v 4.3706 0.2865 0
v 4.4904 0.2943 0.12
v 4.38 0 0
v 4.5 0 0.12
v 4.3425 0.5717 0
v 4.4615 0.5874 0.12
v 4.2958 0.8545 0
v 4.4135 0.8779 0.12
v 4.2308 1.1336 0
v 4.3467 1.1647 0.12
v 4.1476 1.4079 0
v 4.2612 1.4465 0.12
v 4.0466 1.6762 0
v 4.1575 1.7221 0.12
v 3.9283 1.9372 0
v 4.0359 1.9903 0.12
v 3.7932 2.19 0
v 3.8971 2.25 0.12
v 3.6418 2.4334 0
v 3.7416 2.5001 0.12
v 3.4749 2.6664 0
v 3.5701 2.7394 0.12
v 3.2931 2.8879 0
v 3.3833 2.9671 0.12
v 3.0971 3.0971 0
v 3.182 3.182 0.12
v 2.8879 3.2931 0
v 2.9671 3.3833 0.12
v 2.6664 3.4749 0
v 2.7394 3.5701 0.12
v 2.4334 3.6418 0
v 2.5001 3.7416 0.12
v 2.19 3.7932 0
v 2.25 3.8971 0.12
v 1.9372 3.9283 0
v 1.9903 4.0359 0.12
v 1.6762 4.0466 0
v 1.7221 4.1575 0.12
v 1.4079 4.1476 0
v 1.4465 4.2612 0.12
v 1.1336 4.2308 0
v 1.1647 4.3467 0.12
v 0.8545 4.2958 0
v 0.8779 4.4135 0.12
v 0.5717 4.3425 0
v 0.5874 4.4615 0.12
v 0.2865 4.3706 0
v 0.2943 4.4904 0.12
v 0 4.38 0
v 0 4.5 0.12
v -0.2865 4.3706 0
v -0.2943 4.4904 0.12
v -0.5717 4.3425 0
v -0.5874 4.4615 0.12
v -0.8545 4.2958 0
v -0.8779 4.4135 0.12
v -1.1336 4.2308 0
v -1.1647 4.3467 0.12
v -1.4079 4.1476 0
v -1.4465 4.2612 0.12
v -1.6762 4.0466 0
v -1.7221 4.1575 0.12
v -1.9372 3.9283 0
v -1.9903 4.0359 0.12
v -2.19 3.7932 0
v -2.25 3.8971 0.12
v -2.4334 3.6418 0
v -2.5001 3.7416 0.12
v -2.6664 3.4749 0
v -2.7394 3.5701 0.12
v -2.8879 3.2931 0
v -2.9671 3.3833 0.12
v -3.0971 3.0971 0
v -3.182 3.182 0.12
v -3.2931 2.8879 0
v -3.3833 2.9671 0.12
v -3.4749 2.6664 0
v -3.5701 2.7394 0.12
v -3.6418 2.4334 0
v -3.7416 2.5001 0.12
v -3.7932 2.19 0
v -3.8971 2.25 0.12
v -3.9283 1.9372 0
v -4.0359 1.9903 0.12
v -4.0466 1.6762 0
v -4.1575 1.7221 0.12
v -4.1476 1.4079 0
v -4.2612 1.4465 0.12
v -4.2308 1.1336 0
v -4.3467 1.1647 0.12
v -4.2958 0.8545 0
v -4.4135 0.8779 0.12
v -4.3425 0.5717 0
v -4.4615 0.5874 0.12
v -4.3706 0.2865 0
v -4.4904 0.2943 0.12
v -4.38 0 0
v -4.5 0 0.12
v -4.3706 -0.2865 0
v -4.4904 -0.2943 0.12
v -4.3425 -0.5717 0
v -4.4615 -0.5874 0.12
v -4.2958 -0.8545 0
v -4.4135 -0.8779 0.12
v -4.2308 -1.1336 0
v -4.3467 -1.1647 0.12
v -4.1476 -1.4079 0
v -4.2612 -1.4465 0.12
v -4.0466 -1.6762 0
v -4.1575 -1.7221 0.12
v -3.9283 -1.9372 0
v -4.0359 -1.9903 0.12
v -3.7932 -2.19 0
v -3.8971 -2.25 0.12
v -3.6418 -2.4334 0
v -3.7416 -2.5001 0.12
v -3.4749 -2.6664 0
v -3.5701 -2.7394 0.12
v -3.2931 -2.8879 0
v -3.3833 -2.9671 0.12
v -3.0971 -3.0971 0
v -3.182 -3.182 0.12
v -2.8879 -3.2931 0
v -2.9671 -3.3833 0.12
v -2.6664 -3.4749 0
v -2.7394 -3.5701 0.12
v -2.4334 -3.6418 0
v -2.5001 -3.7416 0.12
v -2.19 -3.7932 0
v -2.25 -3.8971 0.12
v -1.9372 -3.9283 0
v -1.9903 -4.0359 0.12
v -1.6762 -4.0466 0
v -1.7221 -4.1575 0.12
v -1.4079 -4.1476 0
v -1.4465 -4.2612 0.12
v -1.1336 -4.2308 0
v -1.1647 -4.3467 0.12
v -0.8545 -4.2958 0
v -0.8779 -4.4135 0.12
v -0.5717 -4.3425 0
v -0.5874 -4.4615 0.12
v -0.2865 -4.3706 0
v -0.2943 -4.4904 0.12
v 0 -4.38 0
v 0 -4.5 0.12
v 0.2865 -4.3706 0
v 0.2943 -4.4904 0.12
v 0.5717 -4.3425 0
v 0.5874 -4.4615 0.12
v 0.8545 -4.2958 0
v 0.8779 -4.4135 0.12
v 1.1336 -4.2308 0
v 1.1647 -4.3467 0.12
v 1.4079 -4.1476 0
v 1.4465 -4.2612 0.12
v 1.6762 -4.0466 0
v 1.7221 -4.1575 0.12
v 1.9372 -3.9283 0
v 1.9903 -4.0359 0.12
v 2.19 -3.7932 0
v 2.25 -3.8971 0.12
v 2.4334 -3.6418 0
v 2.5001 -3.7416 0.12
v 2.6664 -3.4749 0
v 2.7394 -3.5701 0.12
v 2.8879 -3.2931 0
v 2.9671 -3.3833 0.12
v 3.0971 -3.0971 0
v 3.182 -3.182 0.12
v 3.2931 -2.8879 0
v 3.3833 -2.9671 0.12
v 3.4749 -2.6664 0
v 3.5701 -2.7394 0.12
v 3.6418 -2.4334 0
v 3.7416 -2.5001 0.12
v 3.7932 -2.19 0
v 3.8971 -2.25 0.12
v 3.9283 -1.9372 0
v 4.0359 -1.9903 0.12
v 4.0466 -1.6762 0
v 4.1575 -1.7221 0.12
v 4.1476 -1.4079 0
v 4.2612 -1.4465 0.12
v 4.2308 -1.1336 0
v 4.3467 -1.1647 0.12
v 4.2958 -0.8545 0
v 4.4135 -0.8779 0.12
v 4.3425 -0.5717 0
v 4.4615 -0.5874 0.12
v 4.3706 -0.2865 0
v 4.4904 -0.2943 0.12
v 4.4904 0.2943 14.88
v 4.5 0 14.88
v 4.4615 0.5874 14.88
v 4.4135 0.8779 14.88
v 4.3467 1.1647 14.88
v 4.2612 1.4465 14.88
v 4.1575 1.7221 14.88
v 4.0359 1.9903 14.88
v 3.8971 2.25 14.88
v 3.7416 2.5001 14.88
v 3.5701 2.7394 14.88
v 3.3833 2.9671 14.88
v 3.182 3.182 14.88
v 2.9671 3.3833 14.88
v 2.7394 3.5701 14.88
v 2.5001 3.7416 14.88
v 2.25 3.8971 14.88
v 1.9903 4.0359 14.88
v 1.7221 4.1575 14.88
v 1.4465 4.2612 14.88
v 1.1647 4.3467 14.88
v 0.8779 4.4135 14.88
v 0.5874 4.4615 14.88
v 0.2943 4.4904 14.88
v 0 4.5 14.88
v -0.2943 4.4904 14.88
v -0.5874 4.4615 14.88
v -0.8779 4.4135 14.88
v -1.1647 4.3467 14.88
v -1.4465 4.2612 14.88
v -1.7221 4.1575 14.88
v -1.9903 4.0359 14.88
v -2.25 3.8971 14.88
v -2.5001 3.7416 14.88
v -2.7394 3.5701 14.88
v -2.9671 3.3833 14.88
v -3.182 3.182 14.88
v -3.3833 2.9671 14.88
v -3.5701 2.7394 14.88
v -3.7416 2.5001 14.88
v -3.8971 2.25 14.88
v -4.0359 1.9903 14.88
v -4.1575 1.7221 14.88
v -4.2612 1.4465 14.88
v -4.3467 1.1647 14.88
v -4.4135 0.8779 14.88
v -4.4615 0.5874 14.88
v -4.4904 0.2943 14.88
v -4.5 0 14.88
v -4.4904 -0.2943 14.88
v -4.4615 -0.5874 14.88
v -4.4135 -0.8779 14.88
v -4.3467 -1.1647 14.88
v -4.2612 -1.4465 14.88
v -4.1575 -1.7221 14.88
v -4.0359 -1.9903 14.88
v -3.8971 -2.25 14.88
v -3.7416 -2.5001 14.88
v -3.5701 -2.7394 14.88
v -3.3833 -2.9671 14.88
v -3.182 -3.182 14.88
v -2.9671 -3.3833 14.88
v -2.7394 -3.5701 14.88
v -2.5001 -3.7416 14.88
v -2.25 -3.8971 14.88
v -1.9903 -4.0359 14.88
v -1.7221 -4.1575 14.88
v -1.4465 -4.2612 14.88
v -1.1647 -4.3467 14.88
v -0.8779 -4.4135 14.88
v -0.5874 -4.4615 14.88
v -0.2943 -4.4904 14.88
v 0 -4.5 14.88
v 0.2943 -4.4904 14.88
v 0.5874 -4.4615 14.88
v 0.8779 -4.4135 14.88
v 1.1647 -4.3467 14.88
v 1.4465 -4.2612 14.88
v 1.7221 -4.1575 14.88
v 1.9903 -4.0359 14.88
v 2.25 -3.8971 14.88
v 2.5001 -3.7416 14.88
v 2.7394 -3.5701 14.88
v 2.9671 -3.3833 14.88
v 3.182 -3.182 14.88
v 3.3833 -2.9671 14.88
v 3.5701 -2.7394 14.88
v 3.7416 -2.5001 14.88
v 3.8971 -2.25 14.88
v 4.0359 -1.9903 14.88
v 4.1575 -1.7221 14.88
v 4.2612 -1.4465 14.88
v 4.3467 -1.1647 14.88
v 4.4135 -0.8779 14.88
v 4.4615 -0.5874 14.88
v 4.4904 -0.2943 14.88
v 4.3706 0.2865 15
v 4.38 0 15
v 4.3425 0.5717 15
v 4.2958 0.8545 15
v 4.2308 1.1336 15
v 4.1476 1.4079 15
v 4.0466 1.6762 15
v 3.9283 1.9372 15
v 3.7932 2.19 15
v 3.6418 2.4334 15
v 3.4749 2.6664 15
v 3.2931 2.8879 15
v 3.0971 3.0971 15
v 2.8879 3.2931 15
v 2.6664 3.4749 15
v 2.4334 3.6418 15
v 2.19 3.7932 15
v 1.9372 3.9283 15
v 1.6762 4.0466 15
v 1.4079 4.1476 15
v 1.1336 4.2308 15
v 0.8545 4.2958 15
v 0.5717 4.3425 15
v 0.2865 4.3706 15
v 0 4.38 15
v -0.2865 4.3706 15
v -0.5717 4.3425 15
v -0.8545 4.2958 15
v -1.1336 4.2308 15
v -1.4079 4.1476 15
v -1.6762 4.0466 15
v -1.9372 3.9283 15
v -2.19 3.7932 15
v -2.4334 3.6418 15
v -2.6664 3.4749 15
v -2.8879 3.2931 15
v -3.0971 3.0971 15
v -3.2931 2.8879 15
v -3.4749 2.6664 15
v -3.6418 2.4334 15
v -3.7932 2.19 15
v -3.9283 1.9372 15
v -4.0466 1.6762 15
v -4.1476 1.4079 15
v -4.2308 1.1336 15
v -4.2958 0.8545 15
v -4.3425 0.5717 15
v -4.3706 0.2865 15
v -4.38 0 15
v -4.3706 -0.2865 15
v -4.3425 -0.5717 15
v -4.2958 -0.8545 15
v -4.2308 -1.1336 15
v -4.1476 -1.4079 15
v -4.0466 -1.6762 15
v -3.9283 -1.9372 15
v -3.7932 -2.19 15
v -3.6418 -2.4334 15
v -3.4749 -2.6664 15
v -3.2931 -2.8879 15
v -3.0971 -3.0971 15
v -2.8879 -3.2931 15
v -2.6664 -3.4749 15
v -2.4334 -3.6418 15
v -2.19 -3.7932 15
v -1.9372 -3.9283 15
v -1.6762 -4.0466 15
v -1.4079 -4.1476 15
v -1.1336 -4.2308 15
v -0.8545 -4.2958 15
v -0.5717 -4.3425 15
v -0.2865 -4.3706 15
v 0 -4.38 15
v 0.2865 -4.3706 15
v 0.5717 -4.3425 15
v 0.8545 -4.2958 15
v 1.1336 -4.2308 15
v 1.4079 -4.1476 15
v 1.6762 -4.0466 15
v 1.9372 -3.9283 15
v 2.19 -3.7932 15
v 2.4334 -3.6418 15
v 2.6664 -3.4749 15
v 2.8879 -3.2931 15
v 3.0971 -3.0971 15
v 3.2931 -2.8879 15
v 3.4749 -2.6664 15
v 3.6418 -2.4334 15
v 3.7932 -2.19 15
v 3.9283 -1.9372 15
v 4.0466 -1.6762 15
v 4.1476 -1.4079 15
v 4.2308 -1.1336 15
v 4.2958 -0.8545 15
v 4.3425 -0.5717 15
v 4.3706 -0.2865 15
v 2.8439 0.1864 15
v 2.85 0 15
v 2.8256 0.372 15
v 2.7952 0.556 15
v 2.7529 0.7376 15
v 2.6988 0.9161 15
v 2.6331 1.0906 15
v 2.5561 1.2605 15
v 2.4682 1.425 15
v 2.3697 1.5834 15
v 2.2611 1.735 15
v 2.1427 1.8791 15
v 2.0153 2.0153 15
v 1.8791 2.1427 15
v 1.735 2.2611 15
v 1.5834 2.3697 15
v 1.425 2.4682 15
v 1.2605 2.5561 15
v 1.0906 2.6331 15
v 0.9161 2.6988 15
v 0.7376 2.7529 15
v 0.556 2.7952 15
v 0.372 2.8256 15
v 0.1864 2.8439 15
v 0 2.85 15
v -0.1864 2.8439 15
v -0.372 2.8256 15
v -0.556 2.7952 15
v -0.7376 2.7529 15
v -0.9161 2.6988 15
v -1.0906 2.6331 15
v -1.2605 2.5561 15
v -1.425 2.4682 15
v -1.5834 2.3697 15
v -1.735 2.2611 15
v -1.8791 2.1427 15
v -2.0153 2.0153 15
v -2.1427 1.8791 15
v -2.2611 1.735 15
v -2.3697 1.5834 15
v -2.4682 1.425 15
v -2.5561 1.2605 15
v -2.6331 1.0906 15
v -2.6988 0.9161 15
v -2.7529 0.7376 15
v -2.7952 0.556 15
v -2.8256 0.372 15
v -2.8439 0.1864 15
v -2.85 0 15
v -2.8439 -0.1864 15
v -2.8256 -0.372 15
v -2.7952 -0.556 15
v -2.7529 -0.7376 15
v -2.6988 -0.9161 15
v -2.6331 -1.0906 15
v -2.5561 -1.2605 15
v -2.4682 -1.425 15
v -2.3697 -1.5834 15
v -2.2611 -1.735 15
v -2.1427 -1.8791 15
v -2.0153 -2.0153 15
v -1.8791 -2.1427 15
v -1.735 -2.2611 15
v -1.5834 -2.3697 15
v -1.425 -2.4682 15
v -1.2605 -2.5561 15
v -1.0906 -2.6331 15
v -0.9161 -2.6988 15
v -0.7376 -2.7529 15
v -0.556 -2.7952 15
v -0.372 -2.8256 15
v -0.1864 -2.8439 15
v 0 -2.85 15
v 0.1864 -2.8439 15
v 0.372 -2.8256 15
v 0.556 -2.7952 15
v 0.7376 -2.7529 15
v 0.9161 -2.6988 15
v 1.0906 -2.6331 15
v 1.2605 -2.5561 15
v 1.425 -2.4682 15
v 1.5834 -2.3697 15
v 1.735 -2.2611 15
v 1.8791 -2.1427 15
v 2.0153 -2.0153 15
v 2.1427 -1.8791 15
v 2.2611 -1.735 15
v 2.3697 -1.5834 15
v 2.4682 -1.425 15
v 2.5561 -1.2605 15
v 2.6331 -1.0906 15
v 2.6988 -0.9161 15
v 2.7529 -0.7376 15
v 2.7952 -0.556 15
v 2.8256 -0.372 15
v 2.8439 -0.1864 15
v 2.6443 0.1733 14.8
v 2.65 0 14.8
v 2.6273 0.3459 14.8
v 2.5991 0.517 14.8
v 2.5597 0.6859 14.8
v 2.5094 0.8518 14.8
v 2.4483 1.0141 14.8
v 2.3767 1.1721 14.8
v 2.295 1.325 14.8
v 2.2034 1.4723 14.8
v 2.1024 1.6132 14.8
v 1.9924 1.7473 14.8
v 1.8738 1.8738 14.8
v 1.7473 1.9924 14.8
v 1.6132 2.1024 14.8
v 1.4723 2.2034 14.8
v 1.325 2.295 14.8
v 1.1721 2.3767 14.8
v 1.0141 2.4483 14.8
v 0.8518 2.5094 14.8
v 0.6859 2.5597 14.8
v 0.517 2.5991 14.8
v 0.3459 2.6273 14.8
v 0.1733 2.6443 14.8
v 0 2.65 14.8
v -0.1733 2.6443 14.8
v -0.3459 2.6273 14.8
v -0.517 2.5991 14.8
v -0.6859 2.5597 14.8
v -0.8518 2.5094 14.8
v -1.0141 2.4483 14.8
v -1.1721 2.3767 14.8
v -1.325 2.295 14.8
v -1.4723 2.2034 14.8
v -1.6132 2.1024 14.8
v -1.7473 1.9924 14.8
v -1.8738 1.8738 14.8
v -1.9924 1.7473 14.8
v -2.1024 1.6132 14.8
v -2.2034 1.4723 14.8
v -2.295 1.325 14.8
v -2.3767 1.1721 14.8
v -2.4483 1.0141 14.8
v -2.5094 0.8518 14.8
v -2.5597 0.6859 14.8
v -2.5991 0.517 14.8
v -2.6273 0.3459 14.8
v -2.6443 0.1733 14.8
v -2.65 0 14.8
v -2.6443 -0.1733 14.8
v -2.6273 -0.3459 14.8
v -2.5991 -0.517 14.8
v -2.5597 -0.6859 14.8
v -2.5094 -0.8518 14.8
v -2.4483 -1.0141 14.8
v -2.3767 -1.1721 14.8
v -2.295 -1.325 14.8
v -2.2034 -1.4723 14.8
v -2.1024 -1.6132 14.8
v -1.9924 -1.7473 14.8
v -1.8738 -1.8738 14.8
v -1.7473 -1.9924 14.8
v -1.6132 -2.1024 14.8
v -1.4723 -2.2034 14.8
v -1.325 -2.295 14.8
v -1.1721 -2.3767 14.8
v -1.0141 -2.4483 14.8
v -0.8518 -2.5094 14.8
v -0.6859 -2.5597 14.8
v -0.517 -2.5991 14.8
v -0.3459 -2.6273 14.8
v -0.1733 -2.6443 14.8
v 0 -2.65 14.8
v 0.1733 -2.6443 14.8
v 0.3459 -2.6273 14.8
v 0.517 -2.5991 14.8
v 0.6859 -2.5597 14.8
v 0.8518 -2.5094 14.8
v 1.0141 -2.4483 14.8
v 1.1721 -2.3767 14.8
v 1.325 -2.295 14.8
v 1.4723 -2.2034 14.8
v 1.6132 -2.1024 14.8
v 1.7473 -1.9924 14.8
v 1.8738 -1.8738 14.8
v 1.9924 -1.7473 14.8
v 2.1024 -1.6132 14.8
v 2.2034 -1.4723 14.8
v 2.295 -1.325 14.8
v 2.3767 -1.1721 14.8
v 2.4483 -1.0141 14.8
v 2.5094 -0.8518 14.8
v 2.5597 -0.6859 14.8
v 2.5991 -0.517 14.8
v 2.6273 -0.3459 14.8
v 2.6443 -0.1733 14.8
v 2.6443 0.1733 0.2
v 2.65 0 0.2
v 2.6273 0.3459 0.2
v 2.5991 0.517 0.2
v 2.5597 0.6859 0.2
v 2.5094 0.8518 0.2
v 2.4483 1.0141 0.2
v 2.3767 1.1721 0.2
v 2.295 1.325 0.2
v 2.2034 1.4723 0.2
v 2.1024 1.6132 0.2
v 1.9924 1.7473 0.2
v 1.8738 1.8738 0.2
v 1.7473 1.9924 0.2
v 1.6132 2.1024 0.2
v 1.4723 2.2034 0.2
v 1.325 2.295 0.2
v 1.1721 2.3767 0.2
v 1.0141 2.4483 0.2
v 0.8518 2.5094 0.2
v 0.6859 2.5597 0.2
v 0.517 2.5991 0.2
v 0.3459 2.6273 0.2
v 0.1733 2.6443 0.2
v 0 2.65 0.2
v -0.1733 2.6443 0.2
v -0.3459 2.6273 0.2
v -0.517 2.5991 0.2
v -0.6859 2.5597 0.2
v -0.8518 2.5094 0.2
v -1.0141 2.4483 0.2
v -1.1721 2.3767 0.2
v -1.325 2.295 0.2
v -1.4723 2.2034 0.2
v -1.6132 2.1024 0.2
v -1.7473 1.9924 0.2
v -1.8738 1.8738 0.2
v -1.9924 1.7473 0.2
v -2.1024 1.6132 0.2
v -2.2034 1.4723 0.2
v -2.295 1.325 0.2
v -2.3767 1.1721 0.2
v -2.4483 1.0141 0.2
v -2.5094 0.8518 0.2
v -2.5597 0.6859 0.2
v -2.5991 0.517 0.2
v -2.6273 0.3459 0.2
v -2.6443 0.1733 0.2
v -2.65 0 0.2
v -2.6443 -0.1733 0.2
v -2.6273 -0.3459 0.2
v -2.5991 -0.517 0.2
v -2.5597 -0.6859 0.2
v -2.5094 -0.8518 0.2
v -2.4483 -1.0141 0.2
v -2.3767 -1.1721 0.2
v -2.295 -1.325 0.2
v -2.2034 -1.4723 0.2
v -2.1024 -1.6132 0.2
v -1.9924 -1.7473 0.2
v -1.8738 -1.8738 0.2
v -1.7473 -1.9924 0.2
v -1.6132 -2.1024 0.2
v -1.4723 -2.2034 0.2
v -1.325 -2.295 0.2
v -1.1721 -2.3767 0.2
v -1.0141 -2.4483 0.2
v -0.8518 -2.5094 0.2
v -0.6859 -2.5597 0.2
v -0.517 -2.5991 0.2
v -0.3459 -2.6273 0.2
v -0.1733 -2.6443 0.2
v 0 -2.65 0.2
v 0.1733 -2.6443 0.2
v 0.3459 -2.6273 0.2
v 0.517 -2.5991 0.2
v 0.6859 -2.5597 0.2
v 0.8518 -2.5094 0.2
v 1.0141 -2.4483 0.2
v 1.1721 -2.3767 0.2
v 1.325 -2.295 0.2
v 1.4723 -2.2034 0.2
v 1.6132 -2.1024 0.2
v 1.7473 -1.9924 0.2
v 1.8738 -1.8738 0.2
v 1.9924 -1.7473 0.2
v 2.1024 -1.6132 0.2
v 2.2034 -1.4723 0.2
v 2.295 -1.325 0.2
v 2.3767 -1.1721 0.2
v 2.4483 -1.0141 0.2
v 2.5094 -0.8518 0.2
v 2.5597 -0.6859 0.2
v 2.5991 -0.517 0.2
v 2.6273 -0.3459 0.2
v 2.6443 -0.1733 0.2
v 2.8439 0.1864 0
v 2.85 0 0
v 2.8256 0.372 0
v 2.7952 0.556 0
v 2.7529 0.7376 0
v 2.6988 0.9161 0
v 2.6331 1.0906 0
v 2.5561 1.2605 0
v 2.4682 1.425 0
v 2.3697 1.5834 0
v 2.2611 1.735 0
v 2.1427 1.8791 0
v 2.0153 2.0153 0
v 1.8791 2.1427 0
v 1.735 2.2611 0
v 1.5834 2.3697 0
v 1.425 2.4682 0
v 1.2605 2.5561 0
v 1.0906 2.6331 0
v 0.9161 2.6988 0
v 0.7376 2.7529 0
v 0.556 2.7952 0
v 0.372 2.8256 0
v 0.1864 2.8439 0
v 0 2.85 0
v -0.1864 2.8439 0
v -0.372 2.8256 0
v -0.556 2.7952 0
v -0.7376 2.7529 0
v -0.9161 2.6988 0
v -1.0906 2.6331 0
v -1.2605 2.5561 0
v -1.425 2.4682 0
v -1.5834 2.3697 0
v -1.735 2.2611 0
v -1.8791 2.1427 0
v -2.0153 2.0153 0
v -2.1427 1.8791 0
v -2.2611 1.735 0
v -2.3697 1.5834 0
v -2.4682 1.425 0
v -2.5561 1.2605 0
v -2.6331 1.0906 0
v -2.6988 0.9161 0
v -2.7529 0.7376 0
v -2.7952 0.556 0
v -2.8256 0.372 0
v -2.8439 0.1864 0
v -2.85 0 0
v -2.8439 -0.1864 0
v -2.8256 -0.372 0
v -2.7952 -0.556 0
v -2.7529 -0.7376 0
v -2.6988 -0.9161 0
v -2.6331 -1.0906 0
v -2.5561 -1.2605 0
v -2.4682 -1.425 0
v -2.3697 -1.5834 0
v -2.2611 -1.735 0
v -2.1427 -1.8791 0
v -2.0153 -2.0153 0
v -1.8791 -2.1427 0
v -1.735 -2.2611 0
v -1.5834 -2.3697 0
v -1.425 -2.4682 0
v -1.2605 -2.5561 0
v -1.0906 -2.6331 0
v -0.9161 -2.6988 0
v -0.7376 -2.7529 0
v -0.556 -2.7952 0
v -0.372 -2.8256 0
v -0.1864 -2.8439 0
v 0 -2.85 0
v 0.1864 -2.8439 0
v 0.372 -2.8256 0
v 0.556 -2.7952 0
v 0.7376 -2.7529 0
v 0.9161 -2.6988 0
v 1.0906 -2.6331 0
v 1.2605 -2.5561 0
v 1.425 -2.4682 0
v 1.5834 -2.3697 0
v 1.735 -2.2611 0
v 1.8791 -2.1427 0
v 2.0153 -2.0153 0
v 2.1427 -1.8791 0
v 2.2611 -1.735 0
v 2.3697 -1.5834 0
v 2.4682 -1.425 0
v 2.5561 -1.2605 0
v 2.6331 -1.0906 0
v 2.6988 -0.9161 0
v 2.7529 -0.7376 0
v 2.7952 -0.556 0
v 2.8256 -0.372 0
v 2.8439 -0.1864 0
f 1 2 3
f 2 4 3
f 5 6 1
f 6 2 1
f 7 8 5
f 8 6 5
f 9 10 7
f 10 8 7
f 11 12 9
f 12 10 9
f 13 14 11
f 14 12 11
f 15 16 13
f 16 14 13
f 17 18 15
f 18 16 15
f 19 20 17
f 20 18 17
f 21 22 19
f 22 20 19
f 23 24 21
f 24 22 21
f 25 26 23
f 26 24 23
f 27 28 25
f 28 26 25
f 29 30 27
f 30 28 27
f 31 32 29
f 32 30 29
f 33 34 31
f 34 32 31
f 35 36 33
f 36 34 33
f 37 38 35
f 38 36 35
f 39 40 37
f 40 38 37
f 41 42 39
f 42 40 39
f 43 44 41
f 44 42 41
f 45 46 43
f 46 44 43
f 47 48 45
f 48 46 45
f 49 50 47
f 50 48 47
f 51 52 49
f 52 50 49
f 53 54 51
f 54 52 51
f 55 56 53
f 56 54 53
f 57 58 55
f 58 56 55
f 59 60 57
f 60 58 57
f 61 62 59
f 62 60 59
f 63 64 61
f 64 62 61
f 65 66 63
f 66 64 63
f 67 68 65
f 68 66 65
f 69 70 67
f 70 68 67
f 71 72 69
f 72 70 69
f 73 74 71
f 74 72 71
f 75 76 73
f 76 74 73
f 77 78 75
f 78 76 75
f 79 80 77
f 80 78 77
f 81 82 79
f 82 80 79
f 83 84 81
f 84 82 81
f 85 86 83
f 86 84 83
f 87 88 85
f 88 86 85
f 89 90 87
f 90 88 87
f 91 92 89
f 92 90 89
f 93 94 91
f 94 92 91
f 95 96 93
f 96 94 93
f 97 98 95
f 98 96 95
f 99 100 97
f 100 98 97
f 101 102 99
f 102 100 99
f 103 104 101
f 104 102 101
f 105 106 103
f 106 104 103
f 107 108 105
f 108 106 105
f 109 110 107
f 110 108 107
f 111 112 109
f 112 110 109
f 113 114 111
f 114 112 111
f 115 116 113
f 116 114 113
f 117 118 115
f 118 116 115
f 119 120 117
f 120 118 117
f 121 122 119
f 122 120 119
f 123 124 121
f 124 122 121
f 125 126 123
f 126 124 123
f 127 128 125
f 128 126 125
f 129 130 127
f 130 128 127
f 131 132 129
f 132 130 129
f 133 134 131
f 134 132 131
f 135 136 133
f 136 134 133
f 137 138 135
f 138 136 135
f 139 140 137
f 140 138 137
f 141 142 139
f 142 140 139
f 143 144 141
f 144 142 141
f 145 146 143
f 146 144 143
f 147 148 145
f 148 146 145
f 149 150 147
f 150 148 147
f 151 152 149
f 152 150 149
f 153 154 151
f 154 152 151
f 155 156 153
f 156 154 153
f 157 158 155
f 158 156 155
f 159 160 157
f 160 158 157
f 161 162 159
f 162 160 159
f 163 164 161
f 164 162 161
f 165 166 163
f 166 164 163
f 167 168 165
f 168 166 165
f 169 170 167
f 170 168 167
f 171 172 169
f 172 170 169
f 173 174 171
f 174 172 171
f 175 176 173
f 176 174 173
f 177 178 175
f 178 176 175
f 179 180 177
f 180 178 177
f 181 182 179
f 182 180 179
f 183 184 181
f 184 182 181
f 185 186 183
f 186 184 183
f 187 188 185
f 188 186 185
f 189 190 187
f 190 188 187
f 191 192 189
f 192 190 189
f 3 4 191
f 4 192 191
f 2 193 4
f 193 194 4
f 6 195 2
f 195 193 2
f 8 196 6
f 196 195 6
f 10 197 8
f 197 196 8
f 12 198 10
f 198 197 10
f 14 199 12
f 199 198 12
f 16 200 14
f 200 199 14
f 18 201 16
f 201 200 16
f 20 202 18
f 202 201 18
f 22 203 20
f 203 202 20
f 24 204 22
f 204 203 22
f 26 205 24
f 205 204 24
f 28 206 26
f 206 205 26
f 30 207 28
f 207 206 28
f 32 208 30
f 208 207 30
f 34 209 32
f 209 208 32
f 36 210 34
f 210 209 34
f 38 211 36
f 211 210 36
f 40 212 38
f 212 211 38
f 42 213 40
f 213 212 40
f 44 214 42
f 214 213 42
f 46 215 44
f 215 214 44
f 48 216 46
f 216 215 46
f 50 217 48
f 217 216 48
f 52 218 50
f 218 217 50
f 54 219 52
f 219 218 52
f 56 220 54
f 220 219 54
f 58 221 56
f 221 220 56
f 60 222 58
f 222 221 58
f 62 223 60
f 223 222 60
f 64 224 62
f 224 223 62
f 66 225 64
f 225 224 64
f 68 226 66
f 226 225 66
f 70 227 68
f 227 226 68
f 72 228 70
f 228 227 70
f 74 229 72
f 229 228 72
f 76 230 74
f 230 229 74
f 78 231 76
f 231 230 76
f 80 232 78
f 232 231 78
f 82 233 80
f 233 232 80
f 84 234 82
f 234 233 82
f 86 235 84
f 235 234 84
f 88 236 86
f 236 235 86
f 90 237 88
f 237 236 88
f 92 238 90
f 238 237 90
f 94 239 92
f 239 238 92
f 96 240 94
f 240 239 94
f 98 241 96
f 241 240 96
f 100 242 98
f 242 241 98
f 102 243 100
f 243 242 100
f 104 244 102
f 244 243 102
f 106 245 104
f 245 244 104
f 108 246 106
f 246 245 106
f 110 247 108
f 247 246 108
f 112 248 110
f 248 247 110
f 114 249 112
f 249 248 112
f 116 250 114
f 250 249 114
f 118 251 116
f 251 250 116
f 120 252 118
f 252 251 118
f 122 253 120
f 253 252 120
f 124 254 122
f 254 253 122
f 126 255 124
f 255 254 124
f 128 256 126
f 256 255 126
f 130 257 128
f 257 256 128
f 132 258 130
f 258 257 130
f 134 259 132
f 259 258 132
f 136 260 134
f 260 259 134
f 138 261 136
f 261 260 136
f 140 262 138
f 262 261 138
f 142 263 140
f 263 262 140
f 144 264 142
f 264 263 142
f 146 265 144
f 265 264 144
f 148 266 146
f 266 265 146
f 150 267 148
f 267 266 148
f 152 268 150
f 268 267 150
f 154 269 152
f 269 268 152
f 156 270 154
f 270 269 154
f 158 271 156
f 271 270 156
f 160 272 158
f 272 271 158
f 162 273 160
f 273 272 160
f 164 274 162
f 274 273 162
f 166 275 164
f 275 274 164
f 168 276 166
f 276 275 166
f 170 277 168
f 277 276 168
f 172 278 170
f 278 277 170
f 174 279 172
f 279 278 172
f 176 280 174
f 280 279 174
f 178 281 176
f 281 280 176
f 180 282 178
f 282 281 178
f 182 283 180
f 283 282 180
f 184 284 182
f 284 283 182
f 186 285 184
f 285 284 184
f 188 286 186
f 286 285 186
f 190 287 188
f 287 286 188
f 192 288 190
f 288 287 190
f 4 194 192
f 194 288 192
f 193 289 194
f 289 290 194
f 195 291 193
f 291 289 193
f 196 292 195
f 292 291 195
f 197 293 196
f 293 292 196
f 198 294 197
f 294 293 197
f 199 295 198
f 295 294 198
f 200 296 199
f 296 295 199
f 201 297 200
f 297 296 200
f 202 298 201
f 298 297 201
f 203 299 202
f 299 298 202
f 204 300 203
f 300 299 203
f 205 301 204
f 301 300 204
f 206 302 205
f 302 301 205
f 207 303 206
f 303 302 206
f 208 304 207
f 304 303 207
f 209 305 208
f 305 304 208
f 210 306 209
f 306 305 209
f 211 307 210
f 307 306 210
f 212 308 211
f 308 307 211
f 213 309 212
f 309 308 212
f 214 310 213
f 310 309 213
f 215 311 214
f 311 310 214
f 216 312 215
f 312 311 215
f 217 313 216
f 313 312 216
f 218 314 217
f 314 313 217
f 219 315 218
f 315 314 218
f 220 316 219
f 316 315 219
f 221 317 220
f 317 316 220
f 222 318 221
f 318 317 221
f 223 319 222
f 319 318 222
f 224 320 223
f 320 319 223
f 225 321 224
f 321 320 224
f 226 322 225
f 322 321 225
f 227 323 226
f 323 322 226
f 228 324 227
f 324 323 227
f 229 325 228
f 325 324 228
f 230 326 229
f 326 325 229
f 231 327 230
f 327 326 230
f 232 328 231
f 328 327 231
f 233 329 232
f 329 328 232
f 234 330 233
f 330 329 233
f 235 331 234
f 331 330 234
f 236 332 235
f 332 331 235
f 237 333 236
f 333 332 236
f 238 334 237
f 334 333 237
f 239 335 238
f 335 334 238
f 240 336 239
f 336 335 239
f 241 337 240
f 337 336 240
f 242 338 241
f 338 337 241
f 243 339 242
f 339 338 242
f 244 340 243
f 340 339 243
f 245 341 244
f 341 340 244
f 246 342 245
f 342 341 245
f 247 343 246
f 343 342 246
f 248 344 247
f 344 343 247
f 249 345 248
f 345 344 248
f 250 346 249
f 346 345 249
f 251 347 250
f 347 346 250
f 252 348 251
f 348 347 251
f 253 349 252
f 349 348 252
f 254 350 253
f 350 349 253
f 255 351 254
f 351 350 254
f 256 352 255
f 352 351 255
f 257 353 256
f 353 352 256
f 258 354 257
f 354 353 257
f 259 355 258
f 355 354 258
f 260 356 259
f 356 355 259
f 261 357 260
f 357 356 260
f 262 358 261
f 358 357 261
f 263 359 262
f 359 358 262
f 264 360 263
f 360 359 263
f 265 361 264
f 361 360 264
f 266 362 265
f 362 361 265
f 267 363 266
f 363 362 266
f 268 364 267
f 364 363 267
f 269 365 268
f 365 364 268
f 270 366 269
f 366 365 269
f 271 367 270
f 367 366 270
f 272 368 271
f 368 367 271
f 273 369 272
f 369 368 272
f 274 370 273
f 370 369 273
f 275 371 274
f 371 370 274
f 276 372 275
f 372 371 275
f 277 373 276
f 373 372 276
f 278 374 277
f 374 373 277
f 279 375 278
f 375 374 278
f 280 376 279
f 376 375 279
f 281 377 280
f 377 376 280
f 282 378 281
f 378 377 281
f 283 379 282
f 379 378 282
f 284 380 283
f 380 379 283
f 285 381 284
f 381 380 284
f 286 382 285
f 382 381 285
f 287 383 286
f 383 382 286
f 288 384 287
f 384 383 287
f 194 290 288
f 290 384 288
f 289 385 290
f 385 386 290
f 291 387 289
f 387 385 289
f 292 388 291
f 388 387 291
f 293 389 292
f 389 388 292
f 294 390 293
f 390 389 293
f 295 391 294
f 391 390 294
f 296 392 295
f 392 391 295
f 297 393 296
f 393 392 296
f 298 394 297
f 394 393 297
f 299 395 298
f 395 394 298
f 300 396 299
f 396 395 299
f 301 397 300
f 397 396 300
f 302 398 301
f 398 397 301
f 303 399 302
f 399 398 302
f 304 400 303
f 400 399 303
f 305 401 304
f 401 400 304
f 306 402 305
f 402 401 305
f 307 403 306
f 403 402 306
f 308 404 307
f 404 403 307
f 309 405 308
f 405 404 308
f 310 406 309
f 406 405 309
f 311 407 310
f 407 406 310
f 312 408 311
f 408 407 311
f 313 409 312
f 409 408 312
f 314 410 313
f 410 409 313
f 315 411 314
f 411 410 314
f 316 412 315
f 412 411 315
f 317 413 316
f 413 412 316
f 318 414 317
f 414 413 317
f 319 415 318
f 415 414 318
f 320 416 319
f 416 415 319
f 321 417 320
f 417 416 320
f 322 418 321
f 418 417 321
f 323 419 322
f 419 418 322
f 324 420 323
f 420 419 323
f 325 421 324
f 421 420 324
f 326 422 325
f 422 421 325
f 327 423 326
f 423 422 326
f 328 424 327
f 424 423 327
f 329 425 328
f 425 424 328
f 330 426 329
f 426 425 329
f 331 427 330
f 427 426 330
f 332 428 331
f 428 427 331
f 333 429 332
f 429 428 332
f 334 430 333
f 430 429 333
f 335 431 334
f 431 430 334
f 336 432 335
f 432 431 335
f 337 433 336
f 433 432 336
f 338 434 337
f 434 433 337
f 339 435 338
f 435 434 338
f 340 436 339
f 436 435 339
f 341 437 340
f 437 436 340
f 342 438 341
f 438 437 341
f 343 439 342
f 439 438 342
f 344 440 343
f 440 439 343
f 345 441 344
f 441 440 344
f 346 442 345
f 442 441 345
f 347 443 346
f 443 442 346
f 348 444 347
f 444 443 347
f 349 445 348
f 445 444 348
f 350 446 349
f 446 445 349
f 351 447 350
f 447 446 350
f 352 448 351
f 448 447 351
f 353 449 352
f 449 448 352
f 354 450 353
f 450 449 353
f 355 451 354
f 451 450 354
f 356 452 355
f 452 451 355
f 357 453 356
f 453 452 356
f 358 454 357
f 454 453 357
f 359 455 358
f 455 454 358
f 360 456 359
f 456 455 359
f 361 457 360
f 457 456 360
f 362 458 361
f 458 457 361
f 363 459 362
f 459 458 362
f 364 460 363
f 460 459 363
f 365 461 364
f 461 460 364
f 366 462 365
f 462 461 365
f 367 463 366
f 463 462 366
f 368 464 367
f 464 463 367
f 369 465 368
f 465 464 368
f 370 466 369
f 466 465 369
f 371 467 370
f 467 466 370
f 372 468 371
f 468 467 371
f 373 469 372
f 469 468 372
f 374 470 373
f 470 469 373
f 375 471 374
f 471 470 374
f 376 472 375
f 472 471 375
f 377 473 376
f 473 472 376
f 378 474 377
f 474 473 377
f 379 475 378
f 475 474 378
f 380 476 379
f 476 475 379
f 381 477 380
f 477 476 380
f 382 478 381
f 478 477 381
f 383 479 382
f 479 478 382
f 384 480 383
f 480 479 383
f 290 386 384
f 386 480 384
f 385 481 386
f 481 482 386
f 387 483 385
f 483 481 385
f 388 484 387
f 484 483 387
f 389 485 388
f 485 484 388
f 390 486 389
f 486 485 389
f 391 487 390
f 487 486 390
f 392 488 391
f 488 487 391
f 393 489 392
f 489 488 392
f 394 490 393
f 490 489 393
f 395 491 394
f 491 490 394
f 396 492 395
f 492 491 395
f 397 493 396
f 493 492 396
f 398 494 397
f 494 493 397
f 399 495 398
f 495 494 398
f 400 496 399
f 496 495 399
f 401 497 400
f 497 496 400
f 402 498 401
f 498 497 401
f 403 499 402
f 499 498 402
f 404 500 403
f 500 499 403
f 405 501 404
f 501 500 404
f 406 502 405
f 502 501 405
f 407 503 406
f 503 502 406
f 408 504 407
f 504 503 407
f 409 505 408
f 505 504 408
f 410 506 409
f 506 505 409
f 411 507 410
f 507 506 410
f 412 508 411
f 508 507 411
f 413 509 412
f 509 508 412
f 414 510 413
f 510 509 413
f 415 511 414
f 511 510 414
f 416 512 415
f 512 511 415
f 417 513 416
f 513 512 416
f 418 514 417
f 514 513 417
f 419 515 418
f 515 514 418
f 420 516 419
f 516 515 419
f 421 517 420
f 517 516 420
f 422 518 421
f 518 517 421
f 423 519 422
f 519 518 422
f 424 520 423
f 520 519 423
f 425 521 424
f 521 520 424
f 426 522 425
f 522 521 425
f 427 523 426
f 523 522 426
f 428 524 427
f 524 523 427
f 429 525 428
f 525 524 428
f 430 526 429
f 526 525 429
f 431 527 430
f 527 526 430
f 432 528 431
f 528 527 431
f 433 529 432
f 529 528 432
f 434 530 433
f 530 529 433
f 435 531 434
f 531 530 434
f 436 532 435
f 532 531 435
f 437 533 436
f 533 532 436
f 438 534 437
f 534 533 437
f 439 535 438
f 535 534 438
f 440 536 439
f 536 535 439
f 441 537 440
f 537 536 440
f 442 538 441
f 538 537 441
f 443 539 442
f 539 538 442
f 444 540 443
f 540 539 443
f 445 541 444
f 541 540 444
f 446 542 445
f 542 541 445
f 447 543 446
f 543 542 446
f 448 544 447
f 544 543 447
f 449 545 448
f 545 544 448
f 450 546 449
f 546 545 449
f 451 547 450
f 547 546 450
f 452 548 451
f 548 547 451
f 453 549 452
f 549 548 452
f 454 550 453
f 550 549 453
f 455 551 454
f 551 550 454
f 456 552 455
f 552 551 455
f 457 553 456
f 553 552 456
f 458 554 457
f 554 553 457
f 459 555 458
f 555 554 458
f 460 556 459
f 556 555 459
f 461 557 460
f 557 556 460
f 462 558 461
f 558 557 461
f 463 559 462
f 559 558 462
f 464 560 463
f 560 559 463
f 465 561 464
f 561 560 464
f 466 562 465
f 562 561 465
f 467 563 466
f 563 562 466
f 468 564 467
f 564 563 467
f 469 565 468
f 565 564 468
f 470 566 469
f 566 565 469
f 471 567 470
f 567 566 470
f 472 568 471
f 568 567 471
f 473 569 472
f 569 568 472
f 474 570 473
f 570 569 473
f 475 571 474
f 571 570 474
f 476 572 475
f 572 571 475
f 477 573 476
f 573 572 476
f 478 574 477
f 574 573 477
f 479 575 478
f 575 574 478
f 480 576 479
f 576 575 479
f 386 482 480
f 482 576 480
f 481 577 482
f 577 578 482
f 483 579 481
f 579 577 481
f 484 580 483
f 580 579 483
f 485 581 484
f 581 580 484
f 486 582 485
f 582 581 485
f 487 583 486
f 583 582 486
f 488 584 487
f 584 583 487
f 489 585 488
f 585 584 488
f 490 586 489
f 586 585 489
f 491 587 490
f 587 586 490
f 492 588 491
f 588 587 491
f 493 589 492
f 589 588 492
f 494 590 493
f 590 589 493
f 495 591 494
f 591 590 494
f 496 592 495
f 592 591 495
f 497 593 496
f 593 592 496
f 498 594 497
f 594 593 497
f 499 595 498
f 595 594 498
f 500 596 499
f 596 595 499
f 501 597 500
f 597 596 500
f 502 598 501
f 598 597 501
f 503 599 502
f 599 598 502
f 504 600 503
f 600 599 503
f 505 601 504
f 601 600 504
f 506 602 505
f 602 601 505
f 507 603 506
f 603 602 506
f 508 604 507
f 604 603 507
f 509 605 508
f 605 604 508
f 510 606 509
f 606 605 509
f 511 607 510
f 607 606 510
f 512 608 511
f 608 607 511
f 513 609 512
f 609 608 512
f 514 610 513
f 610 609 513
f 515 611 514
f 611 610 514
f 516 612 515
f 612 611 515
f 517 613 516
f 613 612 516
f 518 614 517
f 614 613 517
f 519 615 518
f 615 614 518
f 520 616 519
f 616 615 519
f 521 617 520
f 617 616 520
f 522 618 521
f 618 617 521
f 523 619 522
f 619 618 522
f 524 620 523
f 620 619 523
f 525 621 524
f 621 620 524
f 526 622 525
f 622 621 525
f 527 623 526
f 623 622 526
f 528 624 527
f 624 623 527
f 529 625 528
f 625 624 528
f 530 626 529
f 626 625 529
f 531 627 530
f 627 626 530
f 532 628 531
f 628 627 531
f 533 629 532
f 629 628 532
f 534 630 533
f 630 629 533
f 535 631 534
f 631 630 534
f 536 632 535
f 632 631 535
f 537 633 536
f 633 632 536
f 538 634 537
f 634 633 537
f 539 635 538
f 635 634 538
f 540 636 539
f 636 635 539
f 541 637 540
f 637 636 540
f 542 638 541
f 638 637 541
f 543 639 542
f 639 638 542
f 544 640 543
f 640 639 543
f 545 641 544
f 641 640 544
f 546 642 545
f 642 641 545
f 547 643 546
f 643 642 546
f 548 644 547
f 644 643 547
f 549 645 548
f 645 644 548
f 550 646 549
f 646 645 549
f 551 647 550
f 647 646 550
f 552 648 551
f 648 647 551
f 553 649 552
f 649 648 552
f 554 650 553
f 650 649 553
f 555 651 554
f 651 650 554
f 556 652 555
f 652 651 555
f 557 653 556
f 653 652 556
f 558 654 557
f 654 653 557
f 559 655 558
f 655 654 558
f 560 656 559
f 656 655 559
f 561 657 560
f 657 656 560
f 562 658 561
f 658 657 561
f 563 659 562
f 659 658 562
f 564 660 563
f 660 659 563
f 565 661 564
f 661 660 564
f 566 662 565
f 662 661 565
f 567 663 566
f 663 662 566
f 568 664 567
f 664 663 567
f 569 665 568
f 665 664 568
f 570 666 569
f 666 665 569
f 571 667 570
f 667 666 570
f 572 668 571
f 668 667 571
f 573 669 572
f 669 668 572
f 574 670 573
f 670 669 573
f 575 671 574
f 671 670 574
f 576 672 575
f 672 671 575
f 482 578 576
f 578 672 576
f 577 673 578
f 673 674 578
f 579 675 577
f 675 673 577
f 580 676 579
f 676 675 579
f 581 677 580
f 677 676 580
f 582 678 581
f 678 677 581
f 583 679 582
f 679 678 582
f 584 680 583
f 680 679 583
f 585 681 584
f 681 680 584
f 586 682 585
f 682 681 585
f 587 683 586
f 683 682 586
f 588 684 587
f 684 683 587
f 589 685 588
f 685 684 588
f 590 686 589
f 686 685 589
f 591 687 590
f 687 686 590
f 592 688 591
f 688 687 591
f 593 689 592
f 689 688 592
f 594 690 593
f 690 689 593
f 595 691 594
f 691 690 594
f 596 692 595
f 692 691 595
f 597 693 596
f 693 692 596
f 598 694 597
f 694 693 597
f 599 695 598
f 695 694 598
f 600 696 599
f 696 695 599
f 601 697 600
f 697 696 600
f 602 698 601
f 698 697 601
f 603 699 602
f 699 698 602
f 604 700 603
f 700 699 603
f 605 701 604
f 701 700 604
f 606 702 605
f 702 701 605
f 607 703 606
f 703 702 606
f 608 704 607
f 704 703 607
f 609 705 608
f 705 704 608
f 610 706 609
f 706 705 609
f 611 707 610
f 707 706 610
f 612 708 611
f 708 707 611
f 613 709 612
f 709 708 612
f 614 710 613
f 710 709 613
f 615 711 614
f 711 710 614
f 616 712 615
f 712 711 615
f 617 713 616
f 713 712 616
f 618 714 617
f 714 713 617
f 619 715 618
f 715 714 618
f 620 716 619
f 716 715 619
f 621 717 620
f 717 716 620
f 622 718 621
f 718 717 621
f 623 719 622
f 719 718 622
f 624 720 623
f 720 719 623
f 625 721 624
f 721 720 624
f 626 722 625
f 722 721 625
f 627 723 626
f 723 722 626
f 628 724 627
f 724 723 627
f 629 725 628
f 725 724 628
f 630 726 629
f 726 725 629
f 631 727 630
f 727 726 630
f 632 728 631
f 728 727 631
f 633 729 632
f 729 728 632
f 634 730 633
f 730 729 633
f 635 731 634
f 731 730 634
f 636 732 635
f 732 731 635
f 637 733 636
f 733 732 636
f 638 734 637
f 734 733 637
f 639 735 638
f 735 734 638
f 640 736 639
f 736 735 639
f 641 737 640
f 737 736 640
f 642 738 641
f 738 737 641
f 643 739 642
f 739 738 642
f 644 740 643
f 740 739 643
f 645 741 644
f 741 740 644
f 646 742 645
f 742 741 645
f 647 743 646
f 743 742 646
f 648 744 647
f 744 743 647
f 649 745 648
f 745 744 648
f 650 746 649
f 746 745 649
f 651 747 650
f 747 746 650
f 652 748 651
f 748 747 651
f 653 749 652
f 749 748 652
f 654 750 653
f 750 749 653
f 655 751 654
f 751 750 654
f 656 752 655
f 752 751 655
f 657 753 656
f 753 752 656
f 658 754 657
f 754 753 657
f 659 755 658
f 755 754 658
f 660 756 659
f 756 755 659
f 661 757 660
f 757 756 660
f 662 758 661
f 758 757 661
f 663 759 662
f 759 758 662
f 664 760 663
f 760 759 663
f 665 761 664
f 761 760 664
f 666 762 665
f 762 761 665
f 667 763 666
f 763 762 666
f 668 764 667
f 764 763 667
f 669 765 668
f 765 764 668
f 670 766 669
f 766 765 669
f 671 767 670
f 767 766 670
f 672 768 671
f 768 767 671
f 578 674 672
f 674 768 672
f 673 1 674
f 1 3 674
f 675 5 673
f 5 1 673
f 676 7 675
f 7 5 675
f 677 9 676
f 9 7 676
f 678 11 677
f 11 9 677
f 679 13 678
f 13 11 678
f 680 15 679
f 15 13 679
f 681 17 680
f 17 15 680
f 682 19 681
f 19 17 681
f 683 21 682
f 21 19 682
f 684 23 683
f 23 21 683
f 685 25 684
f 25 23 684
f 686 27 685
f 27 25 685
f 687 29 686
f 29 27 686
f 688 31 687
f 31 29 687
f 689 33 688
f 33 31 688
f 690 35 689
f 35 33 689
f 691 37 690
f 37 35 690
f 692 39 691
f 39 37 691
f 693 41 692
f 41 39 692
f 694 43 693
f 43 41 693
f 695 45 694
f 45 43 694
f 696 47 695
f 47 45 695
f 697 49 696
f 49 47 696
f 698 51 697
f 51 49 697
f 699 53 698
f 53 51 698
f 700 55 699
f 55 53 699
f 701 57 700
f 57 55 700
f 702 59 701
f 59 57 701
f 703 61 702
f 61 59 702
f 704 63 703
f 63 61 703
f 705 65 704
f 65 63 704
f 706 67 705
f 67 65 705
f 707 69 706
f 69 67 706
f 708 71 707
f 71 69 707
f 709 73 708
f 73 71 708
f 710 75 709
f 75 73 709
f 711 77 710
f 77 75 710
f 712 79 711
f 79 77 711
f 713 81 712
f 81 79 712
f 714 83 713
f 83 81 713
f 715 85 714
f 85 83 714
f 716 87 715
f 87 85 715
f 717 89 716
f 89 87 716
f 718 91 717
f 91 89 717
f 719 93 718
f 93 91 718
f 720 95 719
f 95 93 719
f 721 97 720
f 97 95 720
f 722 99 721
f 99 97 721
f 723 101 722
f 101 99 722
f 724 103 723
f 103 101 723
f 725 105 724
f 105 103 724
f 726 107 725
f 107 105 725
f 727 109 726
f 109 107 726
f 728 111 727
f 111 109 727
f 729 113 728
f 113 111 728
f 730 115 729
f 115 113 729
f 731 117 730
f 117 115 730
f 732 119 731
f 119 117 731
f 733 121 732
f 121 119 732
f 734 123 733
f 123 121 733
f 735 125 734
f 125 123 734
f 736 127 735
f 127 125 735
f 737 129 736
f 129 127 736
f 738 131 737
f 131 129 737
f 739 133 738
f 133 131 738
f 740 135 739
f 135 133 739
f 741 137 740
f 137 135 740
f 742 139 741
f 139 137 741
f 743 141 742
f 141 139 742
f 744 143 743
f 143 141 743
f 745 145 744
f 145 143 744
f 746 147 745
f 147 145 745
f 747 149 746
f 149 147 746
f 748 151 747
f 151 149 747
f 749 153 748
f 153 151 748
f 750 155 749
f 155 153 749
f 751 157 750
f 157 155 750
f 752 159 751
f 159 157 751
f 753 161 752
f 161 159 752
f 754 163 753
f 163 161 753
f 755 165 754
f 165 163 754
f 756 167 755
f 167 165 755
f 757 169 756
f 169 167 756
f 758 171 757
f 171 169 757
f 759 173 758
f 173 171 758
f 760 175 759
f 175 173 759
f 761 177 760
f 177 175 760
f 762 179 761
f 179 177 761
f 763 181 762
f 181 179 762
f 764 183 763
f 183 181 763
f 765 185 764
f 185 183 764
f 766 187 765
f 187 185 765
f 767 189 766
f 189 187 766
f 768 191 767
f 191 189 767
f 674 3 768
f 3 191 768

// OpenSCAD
// OOMP generic catalogue model; units: mm.
// Stud length is additional to body depth. Tapping depths are model assumptions.
variant = "full"; // [full, display]
family = "spacer";
connection_type = "plain";
depth_mm = 15;
stud_length_mm = 0;
tapped_depth_mm = 0;
bore_mm = 5.3;
outer_diameter_mm = 9;
across_flats_mm = 6;
thread_nominal_diameter_mm = 3;
thread_pitch_mm = 0.5;
edge_chamfer_mm = 0.12;
mouth_chamfer_mm = 0.2;
angular_segments = 96;
samples_per_pitch = 16;

// Boundary travels up the outside, then down any tapped/plain bore.
// Equal-height rings at shoulders form the annular shoulder faces.
n = angular_segments;
threaded = family == "standoff";
has_stud = connection_type == "stud_to_tapped" || connection_type == "stud_to_stud";
two_studs = connection_type == "stud_to_stud";
through = !threaded || connection_type == "tapped_to_tapped";
pitch = thread_pitch_mm;
diameter = threaded ? thread_nominal_diameter_mm : bore_mm;
minor = diameter - 5*sqrt(3)*pitch/8;
transition = mouth_chamfer_mm + (threaded ? 5*sqrt(3)*pitch/16 : 0);
tip_chamfer = mouth_chamfer_mm + 17*sqrt(3)*pitch/48;
function sorted(v) = len(v)<=1 ? v : let(p=v[0])
    concat(sorted([for(x=v) if(x<p-1e-8) x]), [p], sorted([for(x=v) if(x>p+1e-8) x]));
function reverse(v) = [for(i=[len(v)-1:-1:0]) v[i]];
function theta(i) = i*360/n;
function fract(x) = x-floor(x);
function phase_distance(i,z) = abs(fract(z/pitch-theta(i)/360+0.5)-0.5);
function thread_r(i,z) = minor/2 + min(5*sqrt(3)*pitch/16,
    max(0,(phase_distance(i,z)-0.125)*pitch*sqrt(3)));
function stud_r(i,z,tip) = min(diameter/2 - (variant=="full" ?
    min(17*sqrt(3)*pitch/48,max(0,(phase_distance(i,z)-0.0625)*pitch*sqrt(3))) : 0),
    diameter/2-tip_chamfer+abs(z-tip));
function body_r(i,z) = (threaded ? across_flats_mm/2/cos(theta(i)%60-30) : outer_diameter_mm/2)
    - max(0,edge_chamfer_mm-min(z,depth_mm-z));
function bore_r(i,z) = max(threaded ? (variant=="full" ? thread_r(i,z) : minor/2) : diameter/2,
    diameter/2+mouth_chamfer_mm-(through ? min(z,depth_mm-z) : depth_mm-z));
function stud_z(a,b,tip) = let(count=variant=="full" ? ceil(stud_length_mm/pitch*samples_per_pitch) : 1)
    sorted(concat([for(i=[0:count]) a+(b-a)*i/count], [tip==a ? tip+tip_chamfer : tip-tip_chamfer]));
body_z = sorted([0,edge_chamfer_mm,depth_mm-edge_chamfer_mm,depth_mm]);
low = through ? 0 : depth_mm-tapped_depth_mm;
count = threaded && variant=="full" ? ceil((depth_mm-low)/pitch*samples_per_pitch) : 1;
bore_z = two_studs ? [] : reverse(sorted(concat(
    [for(i=[0:count]) low+(depth_mm-low)*i/count],
    [depth_mm-mouth_chamfer_mm,depth_mm-transition],
    through ? [mouth_chamfer_mm,transition] : [])));
// Ring descriptors: [height, kind, tip]. Kind: 0 body, 1 stud, 2 bore.
rings = concat(
    has_stud ? [for(z=stud_z(-stud_length_mm,0,-stud_length_mm)) [z,1,-stud_length_mm]] : [],
    [for(z=body_z) [z,0,0]],
    two_studs ? [for(z=stud_z(depth_mm,depth_mm+stud_length_mm,depth_mm+stud_length_mm)) [z,1,depth_mm+stud_length_mm]] : [],
    [for(z=bore_z) [z,2,0]]);
function radius(i,ring) = ring[1]==0 ? body_r(i,ring[0]) :
    ring[1]==1 ? stud_r(i,ring[0],ring[2]) : bore_r(i,ring[0]);
points = concat([for(ring=rings) for(i=[0:n-1])
    [radius(i,ring)*cos(theta(i)),radius(i,ring)*sin(theta(i)),ring[0]]],
    through ? [] : [[0,0,rings[0][0]],[0,0,rings[len(rings)-1][0]]]);
center = len(rings)*n;
last = (len(rings)-1)*n;
// OpenSCAD winding is opposite to STL winding.
faces = concat(
    [for(j=[0:len(rings)-(through ? 1 : 2)]) for(i=[0:n-1]) each
        let(a=j*n+i,b=j*n+(i+1)%n,c=((j+1)%len(rings))*n+(i+1)%n,d=((j+1)%len(rings))*n+i)
        [[a,c,b],[a,d,c]]],
    through ? [] : [for(i=[0:n-1]) each let(k=(i+1)%n)
        [[center,i,k],[center+1,last+k,last+i]]]);
assert(family=="spacer" || family=="standoff");
assert(!threaded || connection_type=="tapped_to_tapped" || has_stud);
assert(depth_mm>0 && diameter>0 && pitch>0);
assert(variant=="full" || variant=="display");
assert(n>=24 && n%12==0 && samples_per_pitch>=8);
assert(mouth_chamfer_mm>0 && mouth_chamfer_mm<depth_mm/2);
assert(edge_chamfer_mm>=0 && edge_chamfer_mm<depth_mm/2);
assert(diameter+4*max(mouth_chamfer_mm,edge_chamfer_mm) < (threaded ? across_flats_mm : outer_diameter_mm));
assert(!has_stud || stud_length_mm>2*mouth_chamfer_mm);
assert(!through || !threaded || 2*transition<depth_mm);
assert(connection_type!="stud_to_tapped" || (tapped_depth_mm>transition && tapped_depth_mm<depth_mm));
color([0.86,0.85,0.81]) polyhedron(points=points,faces=faces,convexity=20);
